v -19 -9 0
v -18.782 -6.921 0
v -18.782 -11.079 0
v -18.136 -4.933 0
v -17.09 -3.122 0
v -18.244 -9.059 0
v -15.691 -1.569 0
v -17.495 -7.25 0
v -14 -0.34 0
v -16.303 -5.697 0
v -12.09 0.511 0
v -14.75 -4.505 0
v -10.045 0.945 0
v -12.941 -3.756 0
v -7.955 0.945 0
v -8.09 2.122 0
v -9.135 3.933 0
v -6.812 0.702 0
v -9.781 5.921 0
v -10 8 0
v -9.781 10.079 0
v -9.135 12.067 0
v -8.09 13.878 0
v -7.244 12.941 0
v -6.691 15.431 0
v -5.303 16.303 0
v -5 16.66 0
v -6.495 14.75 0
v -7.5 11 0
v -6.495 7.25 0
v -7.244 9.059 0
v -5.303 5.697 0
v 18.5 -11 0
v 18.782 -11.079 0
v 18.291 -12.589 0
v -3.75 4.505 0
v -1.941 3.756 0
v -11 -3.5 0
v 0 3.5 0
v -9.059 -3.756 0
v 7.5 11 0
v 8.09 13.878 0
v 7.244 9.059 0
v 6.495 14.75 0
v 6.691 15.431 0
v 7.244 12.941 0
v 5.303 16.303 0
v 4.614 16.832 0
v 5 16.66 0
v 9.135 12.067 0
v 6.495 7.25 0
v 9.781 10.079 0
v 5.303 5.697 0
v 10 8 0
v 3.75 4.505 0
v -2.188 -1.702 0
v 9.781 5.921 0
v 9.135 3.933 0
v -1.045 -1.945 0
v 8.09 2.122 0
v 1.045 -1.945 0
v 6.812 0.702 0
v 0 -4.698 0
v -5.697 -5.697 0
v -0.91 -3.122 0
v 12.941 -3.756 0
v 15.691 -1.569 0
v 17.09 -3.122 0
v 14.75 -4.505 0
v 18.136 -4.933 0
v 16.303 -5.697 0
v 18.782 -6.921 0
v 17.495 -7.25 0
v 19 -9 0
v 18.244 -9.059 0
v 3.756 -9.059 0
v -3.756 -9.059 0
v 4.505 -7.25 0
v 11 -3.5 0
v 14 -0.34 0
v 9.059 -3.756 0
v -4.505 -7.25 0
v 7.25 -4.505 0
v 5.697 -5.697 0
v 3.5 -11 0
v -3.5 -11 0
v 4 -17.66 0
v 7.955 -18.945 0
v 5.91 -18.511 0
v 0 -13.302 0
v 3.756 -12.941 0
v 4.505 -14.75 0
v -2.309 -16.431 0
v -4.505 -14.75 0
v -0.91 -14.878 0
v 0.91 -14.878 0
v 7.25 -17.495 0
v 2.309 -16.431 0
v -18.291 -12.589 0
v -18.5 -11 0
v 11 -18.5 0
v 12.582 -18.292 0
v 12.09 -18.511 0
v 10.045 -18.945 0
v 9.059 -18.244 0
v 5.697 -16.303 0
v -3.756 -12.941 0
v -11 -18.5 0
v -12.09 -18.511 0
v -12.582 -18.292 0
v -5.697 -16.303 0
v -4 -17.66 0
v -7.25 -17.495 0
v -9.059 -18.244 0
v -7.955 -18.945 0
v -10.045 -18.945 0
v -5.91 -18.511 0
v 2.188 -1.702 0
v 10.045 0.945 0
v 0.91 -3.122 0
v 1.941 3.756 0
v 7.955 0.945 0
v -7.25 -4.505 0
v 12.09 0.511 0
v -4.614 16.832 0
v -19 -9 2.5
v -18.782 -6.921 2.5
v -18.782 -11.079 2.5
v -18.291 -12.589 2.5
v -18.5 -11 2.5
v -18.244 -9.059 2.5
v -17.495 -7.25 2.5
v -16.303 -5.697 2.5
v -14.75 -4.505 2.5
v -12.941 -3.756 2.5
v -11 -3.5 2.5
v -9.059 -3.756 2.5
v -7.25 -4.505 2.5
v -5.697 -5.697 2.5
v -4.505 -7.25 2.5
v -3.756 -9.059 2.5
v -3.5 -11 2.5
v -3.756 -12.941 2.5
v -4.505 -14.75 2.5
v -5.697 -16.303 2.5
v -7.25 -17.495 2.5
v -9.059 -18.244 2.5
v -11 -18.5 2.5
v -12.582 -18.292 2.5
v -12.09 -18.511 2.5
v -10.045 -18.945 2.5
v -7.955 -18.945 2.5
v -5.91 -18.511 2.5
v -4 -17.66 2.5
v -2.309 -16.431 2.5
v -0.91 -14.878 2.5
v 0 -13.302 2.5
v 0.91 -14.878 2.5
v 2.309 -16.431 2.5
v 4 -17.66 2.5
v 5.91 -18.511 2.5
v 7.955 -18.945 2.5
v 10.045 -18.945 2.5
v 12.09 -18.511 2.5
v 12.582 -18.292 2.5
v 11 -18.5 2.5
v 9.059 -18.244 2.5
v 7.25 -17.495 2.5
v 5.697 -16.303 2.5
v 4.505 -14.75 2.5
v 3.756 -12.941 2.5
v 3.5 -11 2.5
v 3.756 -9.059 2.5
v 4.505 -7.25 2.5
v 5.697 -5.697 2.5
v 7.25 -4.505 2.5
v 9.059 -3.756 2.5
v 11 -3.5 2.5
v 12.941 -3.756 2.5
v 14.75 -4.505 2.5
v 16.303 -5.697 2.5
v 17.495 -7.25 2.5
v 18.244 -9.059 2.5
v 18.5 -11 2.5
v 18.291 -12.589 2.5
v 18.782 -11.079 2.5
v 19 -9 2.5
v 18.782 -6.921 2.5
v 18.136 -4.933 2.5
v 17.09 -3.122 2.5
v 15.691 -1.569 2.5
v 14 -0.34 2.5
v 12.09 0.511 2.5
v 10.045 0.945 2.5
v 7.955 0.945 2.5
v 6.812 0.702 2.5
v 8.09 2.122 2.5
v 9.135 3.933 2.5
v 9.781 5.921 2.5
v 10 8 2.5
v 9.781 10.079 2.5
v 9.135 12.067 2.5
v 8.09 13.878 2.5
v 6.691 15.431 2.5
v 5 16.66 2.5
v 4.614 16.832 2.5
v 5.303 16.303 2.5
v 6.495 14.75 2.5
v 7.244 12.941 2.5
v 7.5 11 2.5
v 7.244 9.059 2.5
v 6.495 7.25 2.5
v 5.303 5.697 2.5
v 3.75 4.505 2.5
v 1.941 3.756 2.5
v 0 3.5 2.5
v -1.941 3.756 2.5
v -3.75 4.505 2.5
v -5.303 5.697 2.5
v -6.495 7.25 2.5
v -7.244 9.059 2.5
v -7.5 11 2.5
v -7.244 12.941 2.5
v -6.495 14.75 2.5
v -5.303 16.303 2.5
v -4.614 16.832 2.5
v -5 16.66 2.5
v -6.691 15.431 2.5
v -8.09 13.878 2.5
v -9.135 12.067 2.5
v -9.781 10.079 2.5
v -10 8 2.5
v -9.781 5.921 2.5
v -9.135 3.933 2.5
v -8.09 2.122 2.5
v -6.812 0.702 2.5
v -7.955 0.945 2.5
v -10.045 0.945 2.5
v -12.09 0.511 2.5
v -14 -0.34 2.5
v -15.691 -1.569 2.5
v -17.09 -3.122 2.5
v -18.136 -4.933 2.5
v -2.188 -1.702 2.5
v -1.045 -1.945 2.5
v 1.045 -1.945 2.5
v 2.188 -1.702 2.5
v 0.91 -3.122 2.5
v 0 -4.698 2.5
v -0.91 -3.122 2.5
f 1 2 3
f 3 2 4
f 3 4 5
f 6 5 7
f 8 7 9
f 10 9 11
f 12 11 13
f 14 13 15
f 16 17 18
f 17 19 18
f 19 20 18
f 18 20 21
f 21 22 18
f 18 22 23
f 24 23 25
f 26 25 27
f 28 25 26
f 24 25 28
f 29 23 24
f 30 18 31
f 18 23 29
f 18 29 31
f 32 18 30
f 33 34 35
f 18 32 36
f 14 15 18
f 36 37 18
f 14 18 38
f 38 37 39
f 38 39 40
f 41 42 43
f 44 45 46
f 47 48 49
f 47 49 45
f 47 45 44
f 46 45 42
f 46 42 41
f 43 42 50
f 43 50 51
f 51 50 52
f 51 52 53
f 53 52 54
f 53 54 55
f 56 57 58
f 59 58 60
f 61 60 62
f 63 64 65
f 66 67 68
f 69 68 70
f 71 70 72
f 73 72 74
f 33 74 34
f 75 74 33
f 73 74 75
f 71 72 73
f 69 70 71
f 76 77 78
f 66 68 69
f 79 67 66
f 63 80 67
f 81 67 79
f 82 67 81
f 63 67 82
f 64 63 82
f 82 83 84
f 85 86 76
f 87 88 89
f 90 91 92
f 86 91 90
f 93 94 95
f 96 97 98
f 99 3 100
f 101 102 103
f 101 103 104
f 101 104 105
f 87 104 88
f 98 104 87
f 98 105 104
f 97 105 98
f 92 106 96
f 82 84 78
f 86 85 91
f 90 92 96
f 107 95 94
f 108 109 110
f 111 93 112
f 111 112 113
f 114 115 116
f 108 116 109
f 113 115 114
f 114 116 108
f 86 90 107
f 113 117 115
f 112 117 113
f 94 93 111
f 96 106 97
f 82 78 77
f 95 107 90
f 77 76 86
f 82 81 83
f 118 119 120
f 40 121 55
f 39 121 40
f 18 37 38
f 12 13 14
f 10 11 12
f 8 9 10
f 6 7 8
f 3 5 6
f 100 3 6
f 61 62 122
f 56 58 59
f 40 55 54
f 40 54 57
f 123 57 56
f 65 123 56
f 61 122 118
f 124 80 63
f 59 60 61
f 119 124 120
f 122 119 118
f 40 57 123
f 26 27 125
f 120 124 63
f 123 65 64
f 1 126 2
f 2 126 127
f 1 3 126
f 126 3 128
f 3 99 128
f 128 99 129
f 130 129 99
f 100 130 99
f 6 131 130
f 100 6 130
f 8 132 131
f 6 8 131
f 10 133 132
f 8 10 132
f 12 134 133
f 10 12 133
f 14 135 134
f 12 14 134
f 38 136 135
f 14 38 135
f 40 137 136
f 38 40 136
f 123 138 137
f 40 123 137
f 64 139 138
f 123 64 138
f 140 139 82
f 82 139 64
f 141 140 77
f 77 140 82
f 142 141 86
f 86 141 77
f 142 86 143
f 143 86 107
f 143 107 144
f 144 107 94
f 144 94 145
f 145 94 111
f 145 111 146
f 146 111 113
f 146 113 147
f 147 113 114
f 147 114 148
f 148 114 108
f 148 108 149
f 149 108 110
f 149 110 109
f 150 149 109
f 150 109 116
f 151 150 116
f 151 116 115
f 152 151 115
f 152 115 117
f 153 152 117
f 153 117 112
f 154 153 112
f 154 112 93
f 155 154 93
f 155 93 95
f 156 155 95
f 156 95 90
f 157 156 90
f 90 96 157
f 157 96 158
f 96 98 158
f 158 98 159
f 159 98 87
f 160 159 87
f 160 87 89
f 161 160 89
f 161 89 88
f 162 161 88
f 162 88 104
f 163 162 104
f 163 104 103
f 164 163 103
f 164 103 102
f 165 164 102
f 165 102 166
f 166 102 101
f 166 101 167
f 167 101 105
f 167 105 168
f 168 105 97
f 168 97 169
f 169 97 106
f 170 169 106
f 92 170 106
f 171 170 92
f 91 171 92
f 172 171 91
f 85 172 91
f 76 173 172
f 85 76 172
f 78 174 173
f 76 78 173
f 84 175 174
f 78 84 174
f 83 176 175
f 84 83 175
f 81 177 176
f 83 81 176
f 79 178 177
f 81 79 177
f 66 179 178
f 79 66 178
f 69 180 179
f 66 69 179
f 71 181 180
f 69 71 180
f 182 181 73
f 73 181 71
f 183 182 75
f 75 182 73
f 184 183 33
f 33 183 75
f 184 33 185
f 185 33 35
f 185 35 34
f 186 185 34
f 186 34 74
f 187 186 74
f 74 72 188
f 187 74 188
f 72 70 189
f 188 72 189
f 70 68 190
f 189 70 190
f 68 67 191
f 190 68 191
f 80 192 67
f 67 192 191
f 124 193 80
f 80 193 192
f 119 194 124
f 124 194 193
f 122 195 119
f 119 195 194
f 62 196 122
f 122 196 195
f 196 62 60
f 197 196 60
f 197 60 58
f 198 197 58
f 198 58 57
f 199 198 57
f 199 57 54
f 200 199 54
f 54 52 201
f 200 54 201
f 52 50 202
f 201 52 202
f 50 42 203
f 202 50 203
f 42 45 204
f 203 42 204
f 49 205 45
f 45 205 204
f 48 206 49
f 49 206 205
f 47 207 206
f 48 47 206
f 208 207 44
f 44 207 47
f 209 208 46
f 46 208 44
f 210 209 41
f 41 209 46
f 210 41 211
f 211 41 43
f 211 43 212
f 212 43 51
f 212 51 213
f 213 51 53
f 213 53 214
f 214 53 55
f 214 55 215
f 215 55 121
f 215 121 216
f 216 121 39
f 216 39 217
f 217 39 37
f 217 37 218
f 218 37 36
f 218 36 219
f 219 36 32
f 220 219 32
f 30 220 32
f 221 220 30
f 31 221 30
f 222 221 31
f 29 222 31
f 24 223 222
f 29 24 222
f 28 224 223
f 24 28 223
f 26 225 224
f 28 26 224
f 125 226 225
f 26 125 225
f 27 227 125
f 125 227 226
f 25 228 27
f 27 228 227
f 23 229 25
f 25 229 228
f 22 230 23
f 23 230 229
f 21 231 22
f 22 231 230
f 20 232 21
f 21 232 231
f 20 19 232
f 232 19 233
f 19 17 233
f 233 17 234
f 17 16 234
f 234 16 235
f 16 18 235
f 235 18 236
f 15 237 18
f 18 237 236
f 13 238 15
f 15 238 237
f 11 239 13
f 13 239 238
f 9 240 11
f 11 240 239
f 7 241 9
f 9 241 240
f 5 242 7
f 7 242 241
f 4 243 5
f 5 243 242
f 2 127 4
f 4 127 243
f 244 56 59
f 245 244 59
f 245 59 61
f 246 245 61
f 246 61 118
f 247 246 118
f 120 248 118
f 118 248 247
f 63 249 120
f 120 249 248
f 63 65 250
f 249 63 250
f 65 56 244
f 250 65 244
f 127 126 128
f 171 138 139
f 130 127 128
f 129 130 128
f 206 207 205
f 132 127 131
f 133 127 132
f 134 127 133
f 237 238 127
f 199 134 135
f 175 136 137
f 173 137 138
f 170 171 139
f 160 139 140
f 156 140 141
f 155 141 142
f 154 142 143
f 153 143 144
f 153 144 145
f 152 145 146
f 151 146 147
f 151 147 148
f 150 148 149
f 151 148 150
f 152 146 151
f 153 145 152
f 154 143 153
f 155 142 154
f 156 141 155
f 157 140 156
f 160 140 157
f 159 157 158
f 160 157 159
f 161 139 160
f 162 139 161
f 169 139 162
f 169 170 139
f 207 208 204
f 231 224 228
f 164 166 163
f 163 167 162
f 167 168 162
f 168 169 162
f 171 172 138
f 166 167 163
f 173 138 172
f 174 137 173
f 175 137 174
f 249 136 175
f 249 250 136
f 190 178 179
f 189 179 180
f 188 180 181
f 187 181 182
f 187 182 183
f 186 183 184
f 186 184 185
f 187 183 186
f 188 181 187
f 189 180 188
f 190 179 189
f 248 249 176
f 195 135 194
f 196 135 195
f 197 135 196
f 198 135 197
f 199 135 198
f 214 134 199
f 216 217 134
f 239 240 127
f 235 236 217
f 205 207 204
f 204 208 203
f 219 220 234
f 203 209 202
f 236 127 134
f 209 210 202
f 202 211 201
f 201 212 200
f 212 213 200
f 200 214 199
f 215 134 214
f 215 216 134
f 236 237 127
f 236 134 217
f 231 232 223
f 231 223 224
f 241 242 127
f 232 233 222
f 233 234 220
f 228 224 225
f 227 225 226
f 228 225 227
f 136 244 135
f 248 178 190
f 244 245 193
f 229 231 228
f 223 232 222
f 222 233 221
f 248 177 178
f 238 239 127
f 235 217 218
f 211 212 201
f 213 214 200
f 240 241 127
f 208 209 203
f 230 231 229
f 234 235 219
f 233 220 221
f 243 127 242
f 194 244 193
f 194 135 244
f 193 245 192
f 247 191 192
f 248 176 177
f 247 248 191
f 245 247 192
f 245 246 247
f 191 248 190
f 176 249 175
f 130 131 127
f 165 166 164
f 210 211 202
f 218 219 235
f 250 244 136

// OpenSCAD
difference(){
 translate([0,8,0])
 cylinder(h=2.5, r=10, center=false);
 translate([0,11,-0.5])
 cylinder(h=3, r=7.5, center=false);
}//end of top circle

difference(){
translate([9,-9,0])
cylinder(h=2.5, r=10, center=false);
 translate([11,-11,-0.5])
 cylinder(h=3, r=7.5, center=false);
}//end of left circle

difference(){
translate([-9,-9,0])
cylinder(h=2.5, r=10, center=false);
 translate([-11,-11,-0.5])
 cylinder(h=3, r=7.5, center=false);
}//end of right circle
